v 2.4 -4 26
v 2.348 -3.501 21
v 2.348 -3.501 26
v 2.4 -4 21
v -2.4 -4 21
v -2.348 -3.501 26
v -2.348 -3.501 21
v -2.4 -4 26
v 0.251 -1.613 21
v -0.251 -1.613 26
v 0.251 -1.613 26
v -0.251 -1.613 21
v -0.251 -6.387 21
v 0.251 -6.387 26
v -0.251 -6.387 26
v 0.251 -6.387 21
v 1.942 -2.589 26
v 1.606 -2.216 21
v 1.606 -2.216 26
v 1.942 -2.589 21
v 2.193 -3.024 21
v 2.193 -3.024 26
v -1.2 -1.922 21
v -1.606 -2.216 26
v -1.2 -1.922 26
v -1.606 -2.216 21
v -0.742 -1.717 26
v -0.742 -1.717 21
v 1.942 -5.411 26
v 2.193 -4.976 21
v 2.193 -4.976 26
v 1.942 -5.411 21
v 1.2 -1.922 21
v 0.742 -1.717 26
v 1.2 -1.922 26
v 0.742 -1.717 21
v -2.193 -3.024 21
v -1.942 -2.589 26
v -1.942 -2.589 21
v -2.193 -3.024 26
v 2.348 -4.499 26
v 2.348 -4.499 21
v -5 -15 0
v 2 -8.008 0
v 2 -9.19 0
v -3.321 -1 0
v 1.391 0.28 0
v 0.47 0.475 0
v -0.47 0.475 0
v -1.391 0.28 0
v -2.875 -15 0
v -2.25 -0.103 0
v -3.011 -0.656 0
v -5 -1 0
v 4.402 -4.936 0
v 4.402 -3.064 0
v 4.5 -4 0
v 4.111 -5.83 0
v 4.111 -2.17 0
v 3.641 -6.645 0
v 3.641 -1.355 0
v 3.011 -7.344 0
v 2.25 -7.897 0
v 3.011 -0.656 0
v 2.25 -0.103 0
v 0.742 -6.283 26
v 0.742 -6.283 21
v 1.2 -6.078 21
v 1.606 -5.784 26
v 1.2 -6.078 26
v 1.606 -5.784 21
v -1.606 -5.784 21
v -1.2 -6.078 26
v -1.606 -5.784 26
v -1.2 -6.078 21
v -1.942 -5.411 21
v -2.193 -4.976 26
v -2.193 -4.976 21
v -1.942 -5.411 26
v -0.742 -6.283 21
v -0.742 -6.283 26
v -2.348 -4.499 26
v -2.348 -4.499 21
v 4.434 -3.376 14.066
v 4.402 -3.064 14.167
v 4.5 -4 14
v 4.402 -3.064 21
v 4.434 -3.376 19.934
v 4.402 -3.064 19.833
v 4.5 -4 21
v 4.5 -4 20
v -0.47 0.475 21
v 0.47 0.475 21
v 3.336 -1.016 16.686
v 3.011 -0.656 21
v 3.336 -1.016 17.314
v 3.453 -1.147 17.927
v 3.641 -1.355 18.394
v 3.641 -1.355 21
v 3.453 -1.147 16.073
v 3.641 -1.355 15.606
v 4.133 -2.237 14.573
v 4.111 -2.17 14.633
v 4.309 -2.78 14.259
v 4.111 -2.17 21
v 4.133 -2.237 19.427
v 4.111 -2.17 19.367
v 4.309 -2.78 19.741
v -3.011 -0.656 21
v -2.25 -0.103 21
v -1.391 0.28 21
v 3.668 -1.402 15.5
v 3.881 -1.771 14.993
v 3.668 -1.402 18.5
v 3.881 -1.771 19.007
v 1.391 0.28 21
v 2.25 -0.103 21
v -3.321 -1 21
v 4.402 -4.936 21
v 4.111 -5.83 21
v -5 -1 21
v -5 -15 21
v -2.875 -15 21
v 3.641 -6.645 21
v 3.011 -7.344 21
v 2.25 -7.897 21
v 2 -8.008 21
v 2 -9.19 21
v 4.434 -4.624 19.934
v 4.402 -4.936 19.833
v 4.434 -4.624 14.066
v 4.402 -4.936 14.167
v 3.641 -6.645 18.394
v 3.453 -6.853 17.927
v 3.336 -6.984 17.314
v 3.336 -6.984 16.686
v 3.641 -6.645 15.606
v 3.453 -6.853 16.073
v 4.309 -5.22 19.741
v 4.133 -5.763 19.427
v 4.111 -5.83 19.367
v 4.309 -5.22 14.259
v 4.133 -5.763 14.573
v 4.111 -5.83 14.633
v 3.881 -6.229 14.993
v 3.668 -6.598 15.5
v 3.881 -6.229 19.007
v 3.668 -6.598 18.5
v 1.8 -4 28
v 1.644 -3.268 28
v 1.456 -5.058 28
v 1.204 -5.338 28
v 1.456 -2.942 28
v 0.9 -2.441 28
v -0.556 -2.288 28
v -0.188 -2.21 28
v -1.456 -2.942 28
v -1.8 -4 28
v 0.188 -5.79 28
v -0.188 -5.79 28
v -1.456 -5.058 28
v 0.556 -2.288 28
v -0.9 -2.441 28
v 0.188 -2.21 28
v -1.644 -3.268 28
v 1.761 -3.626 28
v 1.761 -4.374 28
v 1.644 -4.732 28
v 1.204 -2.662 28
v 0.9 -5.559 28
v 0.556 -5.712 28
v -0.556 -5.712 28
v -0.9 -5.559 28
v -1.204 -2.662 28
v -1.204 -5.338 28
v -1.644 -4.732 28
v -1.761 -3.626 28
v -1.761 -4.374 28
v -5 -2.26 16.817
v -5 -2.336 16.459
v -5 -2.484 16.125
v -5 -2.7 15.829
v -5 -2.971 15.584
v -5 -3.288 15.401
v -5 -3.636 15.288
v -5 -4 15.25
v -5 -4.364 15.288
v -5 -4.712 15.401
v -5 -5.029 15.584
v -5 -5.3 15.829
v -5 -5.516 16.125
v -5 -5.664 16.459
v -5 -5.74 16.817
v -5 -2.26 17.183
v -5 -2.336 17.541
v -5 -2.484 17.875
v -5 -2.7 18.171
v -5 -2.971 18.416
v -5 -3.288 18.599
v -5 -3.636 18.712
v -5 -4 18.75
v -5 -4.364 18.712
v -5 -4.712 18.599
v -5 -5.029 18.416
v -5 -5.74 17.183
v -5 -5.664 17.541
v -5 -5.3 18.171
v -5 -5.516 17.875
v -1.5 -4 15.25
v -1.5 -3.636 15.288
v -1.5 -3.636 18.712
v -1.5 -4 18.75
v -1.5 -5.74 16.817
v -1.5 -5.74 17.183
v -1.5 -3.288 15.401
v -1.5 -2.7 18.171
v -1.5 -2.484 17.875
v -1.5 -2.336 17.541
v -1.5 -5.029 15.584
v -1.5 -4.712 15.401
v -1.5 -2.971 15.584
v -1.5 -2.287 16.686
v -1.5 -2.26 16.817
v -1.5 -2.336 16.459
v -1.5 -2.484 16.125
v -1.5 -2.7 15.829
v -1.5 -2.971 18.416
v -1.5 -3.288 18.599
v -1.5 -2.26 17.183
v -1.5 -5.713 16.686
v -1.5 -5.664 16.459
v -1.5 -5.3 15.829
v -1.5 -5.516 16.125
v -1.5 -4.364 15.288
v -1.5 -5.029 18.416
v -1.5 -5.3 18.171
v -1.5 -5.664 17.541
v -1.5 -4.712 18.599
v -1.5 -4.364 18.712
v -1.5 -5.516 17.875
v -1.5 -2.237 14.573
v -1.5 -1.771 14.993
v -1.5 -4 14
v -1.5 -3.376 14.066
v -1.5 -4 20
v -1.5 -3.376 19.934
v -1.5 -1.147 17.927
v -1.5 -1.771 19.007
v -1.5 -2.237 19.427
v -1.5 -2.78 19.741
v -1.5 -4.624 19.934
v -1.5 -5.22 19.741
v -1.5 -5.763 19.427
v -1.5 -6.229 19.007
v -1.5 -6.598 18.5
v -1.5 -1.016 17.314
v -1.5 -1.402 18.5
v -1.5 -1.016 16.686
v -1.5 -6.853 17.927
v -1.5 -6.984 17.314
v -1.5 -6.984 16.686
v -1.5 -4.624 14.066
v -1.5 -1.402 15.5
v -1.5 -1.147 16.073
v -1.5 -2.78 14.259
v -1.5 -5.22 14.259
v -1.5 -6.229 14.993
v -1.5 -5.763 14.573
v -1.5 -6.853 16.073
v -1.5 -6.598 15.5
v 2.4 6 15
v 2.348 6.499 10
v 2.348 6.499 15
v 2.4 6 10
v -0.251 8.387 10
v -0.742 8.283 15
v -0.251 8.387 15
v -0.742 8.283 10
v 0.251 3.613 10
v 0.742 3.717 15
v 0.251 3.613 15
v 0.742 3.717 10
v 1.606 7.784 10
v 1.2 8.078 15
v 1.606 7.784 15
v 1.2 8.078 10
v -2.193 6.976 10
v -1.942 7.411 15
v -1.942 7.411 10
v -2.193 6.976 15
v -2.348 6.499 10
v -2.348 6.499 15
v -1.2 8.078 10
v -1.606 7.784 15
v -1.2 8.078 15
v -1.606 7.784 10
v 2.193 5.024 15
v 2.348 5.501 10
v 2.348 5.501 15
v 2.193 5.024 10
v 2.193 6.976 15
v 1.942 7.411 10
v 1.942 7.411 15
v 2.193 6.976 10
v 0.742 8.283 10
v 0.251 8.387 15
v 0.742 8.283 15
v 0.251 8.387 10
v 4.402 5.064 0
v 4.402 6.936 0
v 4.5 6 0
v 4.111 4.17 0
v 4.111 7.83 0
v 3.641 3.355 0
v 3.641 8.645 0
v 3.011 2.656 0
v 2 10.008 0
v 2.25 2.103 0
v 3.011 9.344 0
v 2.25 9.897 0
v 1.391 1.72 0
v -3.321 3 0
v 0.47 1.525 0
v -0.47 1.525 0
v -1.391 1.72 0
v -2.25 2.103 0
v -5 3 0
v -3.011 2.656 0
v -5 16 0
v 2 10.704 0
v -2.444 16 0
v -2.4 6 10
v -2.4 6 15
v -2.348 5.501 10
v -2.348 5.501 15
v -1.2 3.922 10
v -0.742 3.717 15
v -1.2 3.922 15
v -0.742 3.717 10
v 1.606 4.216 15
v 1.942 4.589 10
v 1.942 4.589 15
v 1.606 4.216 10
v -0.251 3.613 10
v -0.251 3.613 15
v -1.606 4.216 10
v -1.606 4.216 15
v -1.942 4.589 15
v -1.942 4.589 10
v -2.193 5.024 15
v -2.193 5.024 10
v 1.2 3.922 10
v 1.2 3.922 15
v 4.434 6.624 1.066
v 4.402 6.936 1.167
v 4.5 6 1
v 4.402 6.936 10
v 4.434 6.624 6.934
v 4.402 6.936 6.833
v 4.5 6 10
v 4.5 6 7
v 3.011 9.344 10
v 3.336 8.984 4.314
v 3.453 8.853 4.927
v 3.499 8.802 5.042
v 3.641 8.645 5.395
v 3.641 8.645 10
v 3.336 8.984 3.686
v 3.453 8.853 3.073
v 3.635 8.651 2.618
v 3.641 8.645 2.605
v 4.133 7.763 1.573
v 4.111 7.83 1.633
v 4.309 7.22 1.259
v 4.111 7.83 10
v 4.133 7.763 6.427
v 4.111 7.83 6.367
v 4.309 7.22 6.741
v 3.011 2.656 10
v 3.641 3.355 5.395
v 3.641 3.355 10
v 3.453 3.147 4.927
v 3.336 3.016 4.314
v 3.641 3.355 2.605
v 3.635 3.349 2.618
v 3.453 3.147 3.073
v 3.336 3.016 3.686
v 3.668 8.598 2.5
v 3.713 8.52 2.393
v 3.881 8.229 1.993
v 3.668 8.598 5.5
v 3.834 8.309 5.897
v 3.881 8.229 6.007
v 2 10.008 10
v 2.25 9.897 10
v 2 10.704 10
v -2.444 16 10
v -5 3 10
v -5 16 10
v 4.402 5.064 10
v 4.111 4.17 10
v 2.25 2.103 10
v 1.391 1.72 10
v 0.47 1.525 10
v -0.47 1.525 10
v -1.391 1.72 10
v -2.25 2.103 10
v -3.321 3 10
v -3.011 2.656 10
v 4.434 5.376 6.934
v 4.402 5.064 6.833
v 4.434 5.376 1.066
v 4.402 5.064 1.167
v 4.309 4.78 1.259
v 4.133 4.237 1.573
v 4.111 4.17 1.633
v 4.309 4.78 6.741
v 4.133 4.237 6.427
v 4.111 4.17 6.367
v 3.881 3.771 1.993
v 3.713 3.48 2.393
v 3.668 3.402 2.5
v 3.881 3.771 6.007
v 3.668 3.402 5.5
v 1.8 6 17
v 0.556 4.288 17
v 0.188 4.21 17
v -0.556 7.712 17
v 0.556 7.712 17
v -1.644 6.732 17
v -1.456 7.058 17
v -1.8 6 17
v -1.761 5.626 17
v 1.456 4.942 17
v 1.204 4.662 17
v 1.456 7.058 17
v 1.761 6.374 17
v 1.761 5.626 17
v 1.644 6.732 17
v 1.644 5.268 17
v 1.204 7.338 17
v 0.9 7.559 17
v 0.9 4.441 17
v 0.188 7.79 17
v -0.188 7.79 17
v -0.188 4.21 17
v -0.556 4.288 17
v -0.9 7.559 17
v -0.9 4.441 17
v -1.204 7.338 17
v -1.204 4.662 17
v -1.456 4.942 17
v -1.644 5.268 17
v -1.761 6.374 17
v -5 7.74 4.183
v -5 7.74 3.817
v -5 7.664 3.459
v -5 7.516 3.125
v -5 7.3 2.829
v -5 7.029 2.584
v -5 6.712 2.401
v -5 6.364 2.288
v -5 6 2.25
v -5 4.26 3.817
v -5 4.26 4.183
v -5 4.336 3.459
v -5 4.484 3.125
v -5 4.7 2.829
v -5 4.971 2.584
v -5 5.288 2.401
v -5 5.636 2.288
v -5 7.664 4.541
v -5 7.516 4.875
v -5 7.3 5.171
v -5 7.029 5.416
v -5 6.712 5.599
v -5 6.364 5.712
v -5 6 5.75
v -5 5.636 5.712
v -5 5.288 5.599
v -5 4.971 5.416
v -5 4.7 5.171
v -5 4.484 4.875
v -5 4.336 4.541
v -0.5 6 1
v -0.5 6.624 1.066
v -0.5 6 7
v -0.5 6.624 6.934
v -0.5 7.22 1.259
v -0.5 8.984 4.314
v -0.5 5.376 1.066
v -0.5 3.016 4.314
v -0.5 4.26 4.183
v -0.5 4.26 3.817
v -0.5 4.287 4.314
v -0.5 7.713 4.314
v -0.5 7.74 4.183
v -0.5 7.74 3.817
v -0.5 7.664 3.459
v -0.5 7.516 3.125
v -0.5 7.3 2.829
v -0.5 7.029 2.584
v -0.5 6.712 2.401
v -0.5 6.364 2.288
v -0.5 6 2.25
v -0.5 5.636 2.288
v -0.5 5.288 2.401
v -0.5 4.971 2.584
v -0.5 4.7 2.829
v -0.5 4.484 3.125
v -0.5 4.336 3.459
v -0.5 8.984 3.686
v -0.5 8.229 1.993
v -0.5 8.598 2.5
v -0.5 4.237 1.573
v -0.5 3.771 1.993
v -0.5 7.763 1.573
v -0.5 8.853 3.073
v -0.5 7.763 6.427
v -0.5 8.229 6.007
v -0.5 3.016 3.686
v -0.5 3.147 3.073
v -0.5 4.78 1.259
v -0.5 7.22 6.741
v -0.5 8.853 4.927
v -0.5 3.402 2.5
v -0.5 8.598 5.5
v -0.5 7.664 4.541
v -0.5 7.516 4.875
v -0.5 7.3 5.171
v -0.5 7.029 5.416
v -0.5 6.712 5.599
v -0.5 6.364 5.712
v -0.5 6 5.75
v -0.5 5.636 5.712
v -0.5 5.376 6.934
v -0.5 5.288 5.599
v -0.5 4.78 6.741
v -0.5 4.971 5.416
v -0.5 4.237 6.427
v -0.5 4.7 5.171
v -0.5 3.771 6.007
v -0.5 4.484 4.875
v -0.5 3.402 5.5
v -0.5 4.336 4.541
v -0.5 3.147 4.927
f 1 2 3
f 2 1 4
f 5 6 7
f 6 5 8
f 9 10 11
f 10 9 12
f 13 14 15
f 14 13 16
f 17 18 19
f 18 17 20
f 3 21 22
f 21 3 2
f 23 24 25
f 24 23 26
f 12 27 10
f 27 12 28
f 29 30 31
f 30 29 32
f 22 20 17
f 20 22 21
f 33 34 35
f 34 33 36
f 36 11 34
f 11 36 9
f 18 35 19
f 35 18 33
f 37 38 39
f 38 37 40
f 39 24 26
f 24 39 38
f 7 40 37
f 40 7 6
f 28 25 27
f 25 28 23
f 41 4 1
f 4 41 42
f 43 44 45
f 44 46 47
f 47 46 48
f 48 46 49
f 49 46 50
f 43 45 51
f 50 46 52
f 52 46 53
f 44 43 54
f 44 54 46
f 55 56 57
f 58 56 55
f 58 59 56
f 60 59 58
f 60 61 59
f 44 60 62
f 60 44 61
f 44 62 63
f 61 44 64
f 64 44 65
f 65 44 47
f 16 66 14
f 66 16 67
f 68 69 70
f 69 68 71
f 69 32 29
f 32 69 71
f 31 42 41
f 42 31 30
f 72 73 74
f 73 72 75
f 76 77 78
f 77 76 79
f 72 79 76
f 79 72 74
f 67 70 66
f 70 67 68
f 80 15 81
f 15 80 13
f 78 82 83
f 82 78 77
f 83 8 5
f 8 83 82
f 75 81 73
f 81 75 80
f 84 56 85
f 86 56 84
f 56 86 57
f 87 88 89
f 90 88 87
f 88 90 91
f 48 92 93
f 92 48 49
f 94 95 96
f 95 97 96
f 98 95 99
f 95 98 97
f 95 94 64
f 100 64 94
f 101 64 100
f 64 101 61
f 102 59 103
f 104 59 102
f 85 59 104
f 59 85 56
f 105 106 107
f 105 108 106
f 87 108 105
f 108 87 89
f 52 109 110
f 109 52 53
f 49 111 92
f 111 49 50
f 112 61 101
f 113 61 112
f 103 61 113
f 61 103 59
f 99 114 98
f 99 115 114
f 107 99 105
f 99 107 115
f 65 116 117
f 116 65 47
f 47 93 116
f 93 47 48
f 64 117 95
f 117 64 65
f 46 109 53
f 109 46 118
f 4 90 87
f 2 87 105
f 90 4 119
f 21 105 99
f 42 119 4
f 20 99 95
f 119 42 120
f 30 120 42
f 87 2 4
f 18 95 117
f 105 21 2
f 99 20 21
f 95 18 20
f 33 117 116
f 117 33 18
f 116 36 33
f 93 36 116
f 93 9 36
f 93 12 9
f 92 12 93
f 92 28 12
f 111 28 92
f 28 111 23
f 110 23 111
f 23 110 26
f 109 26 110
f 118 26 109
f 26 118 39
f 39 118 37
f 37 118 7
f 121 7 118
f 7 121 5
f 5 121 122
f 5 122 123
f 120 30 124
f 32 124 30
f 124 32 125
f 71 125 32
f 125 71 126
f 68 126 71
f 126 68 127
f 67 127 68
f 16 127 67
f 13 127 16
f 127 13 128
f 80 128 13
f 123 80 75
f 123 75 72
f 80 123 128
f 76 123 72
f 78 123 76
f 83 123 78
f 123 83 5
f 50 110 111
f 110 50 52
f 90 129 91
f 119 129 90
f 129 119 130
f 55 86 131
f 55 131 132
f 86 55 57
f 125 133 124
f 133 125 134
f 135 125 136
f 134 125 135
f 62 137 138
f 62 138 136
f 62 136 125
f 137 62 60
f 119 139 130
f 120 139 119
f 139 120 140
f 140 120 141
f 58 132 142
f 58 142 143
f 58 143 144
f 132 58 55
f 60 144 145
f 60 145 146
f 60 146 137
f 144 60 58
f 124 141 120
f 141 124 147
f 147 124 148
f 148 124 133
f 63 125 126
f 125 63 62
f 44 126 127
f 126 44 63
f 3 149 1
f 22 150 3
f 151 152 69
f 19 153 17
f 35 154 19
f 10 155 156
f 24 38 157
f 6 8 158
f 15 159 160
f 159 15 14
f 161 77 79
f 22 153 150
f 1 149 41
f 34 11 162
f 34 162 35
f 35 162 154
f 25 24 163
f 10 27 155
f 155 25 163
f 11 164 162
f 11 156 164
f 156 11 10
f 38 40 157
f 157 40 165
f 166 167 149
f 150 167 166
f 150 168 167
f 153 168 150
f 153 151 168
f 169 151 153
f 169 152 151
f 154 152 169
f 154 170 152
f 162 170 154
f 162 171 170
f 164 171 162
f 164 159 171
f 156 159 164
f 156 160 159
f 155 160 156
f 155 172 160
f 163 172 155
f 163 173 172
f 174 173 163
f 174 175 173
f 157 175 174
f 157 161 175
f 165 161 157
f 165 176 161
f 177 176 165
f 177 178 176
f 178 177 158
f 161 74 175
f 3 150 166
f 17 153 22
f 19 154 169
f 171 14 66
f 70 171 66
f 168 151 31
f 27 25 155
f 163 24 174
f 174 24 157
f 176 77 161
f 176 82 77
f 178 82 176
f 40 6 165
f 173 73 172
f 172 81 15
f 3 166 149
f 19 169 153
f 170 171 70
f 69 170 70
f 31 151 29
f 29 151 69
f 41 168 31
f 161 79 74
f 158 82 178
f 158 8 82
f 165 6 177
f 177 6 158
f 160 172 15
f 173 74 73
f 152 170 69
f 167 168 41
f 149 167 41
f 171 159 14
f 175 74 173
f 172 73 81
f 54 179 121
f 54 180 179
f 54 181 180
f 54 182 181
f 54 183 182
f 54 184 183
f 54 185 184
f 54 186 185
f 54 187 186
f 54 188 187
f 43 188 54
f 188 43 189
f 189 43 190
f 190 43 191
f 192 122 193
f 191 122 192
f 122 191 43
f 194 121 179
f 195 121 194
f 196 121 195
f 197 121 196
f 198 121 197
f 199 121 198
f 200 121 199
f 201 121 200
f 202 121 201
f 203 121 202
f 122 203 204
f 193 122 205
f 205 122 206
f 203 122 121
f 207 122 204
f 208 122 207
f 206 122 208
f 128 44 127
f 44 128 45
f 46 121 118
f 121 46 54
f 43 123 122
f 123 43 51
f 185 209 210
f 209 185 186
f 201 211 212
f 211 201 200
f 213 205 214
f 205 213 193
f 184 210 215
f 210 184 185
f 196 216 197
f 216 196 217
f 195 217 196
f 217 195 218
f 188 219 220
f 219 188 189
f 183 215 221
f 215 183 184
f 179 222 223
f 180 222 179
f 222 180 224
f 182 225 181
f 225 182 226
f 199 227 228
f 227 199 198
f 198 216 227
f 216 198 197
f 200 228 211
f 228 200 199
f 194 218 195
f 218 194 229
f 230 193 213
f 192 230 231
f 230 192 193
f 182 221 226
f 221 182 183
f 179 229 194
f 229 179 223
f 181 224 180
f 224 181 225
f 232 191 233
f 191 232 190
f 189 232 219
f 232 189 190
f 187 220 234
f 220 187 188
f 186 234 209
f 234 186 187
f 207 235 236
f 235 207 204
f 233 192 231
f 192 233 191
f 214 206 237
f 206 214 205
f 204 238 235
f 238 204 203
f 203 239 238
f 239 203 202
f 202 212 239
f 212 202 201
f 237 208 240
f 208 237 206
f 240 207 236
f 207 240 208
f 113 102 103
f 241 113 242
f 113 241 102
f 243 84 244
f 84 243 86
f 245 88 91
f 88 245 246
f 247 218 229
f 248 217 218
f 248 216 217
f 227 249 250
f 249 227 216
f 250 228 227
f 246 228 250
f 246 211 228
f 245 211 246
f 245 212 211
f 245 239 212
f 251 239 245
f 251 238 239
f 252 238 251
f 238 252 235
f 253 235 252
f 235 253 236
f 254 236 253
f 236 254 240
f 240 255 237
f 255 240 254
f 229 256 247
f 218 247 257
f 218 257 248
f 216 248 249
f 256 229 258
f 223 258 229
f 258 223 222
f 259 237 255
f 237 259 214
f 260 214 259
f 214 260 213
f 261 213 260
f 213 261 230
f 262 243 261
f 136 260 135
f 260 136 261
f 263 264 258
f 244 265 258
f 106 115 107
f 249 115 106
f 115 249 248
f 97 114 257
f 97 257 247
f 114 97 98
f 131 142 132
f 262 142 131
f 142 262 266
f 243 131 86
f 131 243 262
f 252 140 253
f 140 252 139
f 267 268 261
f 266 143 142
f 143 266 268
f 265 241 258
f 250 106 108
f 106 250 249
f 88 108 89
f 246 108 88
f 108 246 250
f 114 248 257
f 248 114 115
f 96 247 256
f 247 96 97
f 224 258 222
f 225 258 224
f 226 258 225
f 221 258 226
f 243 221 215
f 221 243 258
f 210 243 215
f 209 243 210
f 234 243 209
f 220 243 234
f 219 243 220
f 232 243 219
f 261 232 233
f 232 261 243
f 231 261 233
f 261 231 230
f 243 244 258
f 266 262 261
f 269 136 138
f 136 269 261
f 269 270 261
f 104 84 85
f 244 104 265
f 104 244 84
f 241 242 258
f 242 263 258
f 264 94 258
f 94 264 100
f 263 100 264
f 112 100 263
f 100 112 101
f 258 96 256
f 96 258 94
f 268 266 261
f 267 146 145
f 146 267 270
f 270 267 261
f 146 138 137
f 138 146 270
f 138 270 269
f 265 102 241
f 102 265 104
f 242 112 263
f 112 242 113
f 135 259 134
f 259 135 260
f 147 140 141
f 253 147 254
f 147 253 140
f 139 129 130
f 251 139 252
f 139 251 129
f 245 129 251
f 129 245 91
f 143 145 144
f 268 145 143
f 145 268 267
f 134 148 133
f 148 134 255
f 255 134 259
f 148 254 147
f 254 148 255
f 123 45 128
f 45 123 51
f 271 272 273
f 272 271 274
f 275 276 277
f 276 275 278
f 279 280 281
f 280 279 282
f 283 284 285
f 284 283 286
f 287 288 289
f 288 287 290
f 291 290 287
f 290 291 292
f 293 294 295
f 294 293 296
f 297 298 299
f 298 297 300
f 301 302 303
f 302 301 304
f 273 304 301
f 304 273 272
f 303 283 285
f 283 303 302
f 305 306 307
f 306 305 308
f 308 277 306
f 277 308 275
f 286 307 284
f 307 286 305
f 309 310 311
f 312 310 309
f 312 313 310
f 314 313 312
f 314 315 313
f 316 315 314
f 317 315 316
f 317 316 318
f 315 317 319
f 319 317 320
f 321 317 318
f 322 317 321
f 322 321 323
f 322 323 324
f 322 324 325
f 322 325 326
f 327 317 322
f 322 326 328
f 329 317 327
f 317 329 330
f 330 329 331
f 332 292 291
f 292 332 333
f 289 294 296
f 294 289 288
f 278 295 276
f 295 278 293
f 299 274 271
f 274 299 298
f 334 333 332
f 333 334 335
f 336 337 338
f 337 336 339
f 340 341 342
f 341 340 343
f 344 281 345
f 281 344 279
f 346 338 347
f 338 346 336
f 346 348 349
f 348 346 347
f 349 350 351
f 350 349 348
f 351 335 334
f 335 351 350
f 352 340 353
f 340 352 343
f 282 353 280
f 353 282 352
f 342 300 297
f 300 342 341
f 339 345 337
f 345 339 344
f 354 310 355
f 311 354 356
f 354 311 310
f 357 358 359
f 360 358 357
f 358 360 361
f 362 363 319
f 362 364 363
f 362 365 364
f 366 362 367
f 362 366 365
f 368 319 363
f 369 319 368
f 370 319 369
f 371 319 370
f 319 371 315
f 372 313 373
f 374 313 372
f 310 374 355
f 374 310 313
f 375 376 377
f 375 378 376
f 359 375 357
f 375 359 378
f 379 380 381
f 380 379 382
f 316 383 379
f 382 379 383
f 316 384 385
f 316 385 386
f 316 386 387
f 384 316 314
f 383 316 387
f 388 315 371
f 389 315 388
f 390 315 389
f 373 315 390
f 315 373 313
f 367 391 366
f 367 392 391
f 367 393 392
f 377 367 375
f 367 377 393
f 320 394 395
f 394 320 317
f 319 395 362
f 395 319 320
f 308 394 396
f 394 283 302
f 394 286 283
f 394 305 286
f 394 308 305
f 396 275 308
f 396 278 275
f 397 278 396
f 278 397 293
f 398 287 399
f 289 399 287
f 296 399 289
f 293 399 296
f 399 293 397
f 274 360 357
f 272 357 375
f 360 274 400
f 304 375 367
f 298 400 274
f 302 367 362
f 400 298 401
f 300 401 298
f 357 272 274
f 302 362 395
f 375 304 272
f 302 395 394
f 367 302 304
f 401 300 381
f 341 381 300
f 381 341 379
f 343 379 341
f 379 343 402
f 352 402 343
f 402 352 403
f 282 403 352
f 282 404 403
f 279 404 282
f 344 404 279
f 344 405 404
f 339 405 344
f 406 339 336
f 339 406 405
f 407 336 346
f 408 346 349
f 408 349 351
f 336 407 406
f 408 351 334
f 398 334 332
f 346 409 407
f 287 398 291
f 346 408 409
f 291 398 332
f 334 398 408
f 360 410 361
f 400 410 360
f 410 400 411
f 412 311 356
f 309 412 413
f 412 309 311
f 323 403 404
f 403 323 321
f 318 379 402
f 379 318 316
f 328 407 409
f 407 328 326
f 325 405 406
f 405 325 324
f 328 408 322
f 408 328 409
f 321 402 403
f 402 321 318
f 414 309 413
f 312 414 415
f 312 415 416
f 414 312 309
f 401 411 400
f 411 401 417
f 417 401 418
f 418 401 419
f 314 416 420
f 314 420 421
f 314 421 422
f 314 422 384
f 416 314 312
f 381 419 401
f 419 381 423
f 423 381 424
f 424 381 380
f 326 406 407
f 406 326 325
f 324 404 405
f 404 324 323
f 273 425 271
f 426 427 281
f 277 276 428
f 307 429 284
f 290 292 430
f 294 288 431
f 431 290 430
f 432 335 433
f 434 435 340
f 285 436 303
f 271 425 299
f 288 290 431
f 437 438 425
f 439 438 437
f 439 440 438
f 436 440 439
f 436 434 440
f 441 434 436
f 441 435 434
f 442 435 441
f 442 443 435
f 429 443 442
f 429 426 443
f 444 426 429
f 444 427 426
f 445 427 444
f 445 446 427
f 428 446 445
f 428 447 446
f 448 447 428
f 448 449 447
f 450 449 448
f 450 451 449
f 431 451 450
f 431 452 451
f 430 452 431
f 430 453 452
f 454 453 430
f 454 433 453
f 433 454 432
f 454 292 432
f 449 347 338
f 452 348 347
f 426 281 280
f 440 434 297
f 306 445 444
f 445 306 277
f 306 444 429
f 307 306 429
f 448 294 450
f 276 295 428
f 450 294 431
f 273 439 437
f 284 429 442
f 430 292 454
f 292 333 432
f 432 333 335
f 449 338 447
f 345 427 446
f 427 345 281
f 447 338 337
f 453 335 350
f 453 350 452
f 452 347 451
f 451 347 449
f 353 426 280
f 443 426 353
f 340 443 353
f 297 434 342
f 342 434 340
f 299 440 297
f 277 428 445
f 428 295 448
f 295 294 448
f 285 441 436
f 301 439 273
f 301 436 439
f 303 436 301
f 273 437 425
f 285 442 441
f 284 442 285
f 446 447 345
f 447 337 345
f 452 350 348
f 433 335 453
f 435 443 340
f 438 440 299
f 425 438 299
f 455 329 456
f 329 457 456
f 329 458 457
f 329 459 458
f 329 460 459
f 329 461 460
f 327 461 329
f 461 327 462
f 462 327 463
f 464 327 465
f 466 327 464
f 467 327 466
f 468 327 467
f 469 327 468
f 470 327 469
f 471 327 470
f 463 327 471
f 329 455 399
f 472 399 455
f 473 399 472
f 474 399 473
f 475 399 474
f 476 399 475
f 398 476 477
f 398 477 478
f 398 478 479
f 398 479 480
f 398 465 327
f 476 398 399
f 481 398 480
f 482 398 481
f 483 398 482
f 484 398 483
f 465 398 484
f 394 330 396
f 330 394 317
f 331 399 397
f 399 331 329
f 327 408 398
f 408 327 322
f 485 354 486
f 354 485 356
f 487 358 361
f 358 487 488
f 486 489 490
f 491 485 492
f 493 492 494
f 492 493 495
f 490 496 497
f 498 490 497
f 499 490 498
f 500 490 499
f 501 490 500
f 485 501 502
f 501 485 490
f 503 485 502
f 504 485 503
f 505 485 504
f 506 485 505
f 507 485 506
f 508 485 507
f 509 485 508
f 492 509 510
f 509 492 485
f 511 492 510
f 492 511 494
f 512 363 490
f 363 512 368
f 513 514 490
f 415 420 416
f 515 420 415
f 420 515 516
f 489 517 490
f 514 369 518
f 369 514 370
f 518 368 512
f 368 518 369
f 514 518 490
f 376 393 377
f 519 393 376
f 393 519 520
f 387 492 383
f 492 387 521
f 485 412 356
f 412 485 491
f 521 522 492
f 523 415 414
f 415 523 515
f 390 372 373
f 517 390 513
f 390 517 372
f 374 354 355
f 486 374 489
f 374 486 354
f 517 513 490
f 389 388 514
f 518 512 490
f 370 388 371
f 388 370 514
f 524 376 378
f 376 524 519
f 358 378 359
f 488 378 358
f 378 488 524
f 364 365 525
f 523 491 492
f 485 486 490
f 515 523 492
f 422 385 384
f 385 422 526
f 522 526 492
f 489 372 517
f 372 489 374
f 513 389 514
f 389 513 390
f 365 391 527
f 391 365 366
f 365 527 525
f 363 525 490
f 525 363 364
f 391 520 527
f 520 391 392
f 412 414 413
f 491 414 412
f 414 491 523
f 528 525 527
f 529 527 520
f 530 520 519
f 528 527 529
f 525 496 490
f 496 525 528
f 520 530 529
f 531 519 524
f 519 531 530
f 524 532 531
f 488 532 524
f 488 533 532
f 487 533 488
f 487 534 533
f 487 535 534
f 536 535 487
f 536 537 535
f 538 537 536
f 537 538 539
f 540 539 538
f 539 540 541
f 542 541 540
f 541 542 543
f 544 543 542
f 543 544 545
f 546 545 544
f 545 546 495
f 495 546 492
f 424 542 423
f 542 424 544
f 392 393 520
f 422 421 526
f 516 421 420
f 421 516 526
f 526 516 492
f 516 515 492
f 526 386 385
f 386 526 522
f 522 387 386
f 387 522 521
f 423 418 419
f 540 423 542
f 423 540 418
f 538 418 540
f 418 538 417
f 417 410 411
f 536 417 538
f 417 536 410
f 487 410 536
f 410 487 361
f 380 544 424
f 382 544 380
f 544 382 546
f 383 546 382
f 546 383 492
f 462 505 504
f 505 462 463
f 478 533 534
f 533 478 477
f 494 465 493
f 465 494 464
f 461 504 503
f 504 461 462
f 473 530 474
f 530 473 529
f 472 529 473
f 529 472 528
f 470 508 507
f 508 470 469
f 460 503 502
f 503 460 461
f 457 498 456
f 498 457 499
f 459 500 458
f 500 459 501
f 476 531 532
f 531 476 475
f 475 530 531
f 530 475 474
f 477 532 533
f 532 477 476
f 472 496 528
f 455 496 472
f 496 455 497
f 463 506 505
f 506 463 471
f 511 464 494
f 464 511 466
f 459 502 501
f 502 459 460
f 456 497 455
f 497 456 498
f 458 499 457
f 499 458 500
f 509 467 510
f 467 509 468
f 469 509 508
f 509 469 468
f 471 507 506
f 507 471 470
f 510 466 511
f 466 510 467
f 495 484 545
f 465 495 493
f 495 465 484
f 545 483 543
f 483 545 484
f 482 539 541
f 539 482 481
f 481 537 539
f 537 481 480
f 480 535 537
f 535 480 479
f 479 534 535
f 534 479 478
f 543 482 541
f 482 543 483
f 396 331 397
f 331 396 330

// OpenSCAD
// PRUSA iteration4
// RAMBo cover hinges
// GNU GPL v3
// Josef Průša <iam@josefprusa.cz> and contributors
// http://www.reprap.org/wiki/Prusa_Mendel
// http://prusamendel.org

module upper_hinge()
{
difference()    
    {
        union()
        {
             // body
             cylinder( h = 26, r = 2.4, $fn=30); 
             cylinder( h = 21, r = 4.5, $fn=30); 
             translate([0,0,26]) cylinder( h = 2, r1 = 2.4, r2 = 1.8, $fn=30); 
             translate( [ -5 , -11 , 0 ] ) cube( [ 7 , 14 , 21 ] );  
        }
        // M3 screw hole
        translate( [ -12.5 , -0 , 17 ] ) rotate( [0,90,0] ) cylinder( h = 20, r = 1.75, $fn=30);  
        translate( [ -1.5 , -0 , 17 ] ) rotate( [0,90,0] ) cylinder( h = 9, r = 3, $fn=30); 
        // angle cut
        translate([-3.9,-20,-1]) rotate([0,0,50]) cube([25,5,26]);   
    }
}

module lower_hinge()
{
difference()
    {   
        union()
        { 
            // body   
            translate( [ 0 , 6 , 0 ] ) cylinder( h = 15, r = 2.4, $fn=30); 
            translate( [ 0 , 6 , 0 ] ) cylinder( h = 10, r = 4.5, $fn=30);  
            translate( [ 0 , 6 , 15 ] ) cylinder( h = 2, r1 = 2.4, r2=1.8, $fn=30);  
            translate( [ -5 , 3 , 0 ] ) cube( [ 7 , 13 , 10 ] ); 
        }
        // M3 screw
        translate( [ -0.5 , 6 , 4 ] ) rotate( [0,90,0] ) cylinder( h = 20, r = 3, $fn=30); 
        translate( [ -12 , 6 , 4 ] ) rotate( [0,90,0] ) cylinder( h = 20, r = 1.75, $fn=30); 
        // angle cut
        translate([-5.8,20,-1]) rotate([0,0,-50]) cube([20,5,20]);   
    }
}


translate([0,-4,0]) upper_hinge();
lower_hinge();
